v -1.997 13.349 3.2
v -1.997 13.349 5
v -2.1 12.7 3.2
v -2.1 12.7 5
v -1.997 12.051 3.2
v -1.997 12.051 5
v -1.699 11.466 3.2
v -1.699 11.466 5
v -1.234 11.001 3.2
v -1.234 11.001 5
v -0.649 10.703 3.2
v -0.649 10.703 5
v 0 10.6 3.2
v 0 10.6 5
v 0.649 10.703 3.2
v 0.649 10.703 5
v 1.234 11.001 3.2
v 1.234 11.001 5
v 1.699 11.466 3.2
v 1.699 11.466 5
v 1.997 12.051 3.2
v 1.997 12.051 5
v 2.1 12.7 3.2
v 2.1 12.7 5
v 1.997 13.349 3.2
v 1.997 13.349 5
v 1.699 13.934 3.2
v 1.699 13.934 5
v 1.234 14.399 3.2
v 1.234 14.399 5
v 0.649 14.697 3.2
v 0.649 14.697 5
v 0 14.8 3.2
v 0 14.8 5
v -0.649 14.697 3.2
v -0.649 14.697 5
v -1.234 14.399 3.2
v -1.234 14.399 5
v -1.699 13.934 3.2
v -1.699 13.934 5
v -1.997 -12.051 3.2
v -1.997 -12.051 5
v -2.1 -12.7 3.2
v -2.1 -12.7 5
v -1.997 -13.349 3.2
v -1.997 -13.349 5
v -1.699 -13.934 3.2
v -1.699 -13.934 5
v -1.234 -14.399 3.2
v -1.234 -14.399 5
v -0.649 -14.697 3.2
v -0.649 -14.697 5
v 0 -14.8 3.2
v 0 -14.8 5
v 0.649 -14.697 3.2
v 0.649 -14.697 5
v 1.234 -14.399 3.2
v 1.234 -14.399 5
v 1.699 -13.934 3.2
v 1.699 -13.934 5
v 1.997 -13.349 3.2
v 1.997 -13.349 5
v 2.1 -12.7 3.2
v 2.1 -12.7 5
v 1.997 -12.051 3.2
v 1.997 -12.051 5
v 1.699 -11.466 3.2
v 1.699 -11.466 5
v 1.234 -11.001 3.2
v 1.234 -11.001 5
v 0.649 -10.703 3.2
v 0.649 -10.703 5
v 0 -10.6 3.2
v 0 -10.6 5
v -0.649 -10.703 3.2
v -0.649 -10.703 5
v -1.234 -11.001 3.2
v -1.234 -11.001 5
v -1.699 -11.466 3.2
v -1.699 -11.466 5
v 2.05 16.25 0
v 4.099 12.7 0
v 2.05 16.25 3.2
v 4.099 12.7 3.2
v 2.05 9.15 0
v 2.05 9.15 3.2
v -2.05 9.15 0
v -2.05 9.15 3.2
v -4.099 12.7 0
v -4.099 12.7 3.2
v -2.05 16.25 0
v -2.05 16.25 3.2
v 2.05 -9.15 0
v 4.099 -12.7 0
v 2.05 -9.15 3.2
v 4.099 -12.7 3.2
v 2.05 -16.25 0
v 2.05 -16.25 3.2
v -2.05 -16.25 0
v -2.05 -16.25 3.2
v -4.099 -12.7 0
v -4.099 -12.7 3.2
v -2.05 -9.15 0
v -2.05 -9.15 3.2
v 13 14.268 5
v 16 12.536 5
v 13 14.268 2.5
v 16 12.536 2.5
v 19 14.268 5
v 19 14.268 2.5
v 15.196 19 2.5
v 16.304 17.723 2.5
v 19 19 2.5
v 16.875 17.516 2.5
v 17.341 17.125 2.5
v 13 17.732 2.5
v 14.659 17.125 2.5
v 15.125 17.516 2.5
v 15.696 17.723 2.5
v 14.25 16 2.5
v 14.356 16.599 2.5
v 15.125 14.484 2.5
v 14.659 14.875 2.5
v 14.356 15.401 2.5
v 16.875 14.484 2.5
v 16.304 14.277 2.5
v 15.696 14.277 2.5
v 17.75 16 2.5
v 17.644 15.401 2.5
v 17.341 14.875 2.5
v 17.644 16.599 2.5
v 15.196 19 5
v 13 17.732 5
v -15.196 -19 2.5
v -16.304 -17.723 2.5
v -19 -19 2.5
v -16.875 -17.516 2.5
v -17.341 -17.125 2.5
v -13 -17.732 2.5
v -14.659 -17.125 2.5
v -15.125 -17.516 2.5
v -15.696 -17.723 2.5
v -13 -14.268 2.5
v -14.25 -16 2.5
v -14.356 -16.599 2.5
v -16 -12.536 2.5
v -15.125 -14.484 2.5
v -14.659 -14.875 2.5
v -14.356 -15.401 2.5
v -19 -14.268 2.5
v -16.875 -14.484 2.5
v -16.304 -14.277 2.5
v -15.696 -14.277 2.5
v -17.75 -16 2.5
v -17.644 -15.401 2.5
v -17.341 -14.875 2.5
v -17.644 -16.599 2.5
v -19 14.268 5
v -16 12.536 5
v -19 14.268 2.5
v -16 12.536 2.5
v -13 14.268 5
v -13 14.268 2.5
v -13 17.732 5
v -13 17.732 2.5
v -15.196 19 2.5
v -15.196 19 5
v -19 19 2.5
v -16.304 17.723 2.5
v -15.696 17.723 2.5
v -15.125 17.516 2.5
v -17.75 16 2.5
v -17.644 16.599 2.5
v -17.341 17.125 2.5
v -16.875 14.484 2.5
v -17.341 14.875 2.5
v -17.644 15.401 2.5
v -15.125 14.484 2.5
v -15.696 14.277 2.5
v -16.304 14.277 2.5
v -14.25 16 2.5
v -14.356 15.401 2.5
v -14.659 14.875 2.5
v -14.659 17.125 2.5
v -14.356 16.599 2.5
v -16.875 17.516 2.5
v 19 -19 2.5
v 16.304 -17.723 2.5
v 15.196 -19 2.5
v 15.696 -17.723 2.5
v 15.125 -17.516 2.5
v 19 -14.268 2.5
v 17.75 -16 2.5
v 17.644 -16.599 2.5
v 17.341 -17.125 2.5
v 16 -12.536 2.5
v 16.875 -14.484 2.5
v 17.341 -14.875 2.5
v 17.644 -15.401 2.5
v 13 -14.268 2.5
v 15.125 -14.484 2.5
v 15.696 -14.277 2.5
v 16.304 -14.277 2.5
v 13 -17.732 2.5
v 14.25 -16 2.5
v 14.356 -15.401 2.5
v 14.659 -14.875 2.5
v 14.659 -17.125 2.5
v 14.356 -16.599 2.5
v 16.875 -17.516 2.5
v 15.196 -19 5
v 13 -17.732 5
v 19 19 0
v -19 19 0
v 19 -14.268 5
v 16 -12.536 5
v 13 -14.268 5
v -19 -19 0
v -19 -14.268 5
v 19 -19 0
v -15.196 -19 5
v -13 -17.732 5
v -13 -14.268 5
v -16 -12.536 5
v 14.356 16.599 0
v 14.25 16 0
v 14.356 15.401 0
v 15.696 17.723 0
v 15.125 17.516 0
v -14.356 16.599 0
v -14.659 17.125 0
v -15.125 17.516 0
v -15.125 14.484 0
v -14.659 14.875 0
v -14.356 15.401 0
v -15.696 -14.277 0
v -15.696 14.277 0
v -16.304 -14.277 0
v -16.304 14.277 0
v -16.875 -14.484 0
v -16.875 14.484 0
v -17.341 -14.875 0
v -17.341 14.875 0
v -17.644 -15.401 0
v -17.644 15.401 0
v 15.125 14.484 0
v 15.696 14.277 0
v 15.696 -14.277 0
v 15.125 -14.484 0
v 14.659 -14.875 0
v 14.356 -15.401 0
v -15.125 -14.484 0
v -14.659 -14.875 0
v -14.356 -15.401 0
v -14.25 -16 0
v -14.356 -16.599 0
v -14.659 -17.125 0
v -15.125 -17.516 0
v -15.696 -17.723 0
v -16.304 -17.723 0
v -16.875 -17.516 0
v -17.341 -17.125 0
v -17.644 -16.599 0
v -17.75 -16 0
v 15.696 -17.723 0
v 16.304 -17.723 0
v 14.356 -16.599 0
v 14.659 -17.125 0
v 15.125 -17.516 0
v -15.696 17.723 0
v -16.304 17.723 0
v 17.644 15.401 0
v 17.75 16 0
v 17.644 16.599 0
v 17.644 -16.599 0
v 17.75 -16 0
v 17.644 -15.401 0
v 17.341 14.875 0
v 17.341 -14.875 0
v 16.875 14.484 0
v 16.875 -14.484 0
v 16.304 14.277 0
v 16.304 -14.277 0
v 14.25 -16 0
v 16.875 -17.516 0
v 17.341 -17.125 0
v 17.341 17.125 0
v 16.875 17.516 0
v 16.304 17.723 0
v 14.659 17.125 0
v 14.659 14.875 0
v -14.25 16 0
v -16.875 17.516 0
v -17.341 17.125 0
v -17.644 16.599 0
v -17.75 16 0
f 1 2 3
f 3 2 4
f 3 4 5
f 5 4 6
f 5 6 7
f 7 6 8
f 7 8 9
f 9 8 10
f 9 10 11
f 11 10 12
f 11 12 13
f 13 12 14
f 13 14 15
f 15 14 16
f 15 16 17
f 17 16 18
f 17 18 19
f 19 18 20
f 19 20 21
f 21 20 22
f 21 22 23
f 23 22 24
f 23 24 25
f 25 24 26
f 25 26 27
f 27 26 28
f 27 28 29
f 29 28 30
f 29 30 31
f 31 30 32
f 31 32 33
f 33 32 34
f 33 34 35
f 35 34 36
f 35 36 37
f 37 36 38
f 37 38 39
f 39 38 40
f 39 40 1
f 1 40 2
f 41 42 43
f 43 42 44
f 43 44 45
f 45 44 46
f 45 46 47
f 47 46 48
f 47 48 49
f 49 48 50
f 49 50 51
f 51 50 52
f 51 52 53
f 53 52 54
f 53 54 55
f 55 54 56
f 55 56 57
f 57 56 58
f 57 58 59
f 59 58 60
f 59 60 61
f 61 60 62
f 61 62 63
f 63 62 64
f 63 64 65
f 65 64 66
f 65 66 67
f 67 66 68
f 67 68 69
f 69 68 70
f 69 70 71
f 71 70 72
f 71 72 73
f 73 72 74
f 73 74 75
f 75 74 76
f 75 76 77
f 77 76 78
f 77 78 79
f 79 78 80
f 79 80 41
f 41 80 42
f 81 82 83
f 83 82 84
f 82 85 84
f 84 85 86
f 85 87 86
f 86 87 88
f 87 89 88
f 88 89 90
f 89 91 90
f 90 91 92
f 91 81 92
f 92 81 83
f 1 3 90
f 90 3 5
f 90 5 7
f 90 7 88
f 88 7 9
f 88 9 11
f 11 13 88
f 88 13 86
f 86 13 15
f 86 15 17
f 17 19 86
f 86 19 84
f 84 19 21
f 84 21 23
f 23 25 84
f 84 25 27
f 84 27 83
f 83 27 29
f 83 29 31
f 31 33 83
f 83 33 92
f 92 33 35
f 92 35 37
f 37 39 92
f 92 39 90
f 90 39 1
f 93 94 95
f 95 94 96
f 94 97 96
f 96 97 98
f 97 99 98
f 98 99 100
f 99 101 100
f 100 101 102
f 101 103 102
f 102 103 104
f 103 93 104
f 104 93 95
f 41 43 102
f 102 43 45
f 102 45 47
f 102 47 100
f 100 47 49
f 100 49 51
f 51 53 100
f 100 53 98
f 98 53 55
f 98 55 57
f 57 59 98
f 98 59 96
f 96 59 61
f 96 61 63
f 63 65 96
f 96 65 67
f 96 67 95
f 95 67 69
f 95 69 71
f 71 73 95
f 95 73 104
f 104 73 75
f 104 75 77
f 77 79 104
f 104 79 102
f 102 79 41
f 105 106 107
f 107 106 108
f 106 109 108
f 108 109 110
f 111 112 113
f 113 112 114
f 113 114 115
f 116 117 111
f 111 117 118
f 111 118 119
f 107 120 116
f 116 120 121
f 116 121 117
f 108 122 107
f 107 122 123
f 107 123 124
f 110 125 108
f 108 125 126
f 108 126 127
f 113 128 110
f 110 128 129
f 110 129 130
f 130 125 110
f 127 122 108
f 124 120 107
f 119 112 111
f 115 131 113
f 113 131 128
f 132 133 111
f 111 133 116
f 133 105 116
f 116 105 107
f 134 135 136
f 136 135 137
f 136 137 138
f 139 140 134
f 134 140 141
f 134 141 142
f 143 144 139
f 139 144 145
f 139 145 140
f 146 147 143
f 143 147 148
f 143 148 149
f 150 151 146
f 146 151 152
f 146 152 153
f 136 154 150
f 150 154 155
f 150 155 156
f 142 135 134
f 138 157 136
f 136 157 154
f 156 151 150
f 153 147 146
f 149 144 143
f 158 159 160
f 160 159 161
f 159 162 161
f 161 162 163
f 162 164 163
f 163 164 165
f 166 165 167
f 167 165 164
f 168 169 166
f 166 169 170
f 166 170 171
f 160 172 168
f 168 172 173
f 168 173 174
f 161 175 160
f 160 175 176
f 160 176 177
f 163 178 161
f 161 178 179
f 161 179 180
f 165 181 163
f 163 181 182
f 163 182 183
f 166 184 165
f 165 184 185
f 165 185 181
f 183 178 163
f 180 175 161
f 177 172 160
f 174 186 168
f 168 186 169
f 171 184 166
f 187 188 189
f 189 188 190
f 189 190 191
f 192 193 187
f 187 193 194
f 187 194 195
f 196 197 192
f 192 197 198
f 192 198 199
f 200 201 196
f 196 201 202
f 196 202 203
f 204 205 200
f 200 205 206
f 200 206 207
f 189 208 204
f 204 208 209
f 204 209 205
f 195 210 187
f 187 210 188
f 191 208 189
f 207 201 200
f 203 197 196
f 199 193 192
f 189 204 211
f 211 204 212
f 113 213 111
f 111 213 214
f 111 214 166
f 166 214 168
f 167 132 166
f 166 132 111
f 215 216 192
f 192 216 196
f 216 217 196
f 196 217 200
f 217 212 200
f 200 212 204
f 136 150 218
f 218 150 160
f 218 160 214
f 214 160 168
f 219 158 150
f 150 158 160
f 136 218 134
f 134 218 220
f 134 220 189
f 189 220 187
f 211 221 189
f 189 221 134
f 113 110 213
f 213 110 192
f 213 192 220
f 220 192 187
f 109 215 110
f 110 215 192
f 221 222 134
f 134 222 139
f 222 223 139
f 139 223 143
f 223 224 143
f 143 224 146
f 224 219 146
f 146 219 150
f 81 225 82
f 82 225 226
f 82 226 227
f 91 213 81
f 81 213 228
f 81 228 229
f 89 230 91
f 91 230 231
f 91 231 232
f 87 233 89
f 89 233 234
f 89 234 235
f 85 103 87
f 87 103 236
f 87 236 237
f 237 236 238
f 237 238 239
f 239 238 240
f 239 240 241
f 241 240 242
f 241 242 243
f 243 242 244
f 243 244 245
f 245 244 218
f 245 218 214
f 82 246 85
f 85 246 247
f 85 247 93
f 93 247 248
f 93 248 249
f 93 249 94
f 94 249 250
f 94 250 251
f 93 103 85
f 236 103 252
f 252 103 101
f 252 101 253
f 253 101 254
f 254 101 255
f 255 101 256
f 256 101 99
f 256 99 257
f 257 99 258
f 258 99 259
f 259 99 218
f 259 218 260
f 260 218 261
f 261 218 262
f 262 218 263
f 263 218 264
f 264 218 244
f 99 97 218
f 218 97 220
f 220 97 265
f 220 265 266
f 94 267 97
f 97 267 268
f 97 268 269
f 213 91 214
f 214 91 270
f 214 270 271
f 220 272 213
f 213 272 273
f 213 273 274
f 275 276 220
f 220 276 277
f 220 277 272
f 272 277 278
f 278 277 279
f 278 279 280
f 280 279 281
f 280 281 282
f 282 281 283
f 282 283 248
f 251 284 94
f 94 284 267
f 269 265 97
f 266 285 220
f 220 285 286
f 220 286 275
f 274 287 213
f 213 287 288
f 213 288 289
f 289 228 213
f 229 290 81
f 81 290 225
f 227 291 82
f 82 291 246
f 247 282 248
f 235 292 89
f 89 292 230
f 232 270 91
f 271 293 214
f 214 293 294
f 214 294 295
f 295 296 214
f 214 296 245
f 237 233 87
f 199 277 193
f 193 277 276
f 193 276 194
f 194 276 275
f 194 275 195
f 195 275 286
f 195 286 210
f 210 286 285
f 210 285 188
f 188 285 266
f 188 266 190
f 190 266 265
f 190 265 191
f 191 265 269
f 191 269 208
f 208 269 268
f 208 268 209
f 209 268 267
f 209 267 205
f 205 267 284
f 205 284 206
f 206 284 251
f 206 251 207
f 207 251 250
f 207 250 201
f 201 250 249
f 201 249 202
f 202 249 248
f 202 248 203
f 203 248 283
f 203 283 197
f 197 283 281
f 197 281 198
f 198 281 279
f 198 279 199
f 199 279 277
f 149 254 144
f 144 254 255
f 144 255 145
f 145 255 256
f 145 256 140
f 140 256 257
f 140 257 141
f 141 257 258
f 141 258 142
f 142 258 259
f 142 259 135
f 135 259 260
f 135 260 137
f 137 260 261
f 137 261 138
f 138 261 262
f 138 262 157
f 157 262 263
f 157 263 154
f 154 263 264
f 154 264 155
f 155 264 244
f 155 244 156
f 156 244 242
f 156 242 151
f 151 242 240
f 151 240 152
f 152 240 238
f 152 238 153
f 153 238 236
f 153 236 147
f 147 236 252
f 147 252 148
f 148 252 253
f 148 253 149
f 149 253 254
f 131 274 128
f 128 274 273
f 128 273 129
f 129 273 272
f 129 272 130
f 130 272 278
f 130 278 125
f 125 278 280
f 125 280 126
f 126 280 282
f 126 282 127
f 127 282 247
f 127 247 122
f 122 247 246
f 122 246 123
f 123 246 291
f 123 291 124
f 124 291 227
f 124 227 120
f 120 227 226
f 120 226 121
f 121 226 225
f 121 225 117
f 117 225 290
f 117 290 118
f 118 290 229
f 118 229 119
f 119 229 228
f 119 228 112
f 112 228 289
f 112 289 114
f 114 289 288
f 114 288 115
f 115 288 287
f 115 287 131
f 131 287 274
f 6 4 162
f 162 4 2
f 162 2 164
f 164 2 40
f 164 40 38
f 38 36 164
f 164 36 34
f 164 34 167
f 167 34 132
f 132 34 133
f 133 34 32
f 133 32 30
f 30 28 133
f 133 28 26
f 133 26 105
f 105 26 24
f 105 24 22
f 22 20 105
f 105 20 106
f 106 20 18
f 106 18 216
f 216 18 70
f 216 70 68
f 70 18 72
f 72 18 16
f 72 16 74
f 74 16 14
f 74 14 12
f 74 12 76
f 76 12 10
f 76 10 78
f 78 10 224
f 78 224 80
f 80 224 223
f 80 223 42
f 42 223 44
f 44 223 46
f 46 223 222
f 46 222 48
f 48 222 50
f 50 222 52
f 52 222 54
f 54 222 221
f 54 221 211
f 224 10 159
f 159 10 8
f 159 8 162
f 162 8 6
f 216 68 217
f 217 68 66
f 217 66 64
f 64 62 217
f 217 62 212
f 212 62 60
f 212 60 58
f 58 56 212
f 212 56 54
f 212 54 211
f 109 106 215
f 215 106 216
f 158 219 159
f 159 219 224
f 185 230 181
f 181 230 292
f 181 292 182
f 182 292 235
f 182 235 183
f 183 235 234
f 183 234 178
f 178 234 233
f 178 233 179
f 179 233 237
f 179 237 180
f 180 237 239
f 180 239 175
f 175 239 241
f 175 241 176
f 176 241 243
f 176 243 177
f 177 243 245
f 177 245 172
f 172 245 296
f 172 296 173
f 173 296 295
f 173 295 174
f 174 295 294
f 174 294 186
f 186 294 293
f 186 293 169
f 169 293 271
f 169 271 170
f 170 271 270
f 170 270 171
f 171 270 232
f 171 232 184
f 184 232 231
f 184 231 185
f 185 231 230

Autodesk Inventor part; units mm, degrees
ref_plane "YZ Plane" through (0, 0, 0) normal (1, 0, 0) x (0, 1, 0)
ref_plane "XZ Plane" through (0, 0, 0) normal (0, 1, 0) x (-1, 0, 0)
ref_plane "XY Plane" through (0, 0, 0) normal (0, 0, 1) x (1, 0, 0)
sketch "Sketch5" plane through (0, 0, 0) normal (0, 0, 1) x (1, 0, 0)
  circle A0 centre (-16, 16) radius 1.75
  line L0 (-3.5516, 0) -> (2.966, 0)
  line L1 (0, 4.5757) -> (0, -5.4514)
  circle A1 centre (16, 16) radius 1.75
  circle A2 centre (-16, -16) radius 1.75
  circle A3 centre (16, -16) radius 1.75
  line L2 (19, -19) -> (-19, -19)
  line L3 (-19, -19) -> (-19, 19)
  line L4 (-19, 19) -> (19, 19)
  line L5 (19, 19) -> (19, -19)
  line L6 (19, -19) -> (-19, 19) construction
  line L7 (-19, -19) -> (19, 19) construction
  line L8 (4.0992, -12.7) -> (2.0496, -16.25)
  line L9 (2.0496, -16.25) -> (-2.0496, -16.25)
  line L10 (-2.0496, -16.25) -> (-4.0992, -12.7)
  line L11 (-4.0992, -12.7) -> (-2.0496, -9.15)
  line L12 (-2.0496, -9.15) -> (2.0496, -9.15)
  line L13 (2.0496, -9.15) -> (4.0992, -12.7)
  line L14 (4.0992, 12.7) -> (2.0496, 9.15)
  line L15 (2.0496, 9.15) -> (-2.0496, 9.15)
  line L16 (-2.0496, 9.15) -> (-4.0992, 12.7)
  line L17 (-4.0992, 12.7) -> (-2.0496, 16.25)
  line L18 (-2.0496, 16.25) -> (2.0496, 16.25)
  line L19 (2.0496, 16.25) -> (4.0992, 12.7)
  point P0 (0, 0)
  point P1 (0, 12.7)
  point P2 (0, -12.7)
  point P3 (0, -12.7)
  point P4 (0, 12.7)
  point P5 (0, -16.25)
  dimension "d47" = 3.5
  dimension "d50" = 32
  dimension "d53" = 32
  dimension "d56" = 16
  dimension "d57" = 16
  dimension "d58" = 38
  dimension "d59" = 38
  dimension "d73" = 7.1
  dimension "d74" = 7.1
extrude "Extrusion3" add sketch "Sketch5" along normal blind 5 contours L2 L3 L4 L5 | L8 L9 L10 L11 L12 L13 | L14 L15 L16 L17 L18 L19
sketch "Sketch6" plane through (0, 0, 5) normal (0, 0, 1) x (1, 0, 0)
  circle A0 centre (-16, 16) radius 1.75 projected
  line L0 (-16, 19.4641) -> (-13, 17.7321)
  line L1 (-13, 17.7321) -> (-13, 14.2679)
  line L2 (-13, 14.2679) -> (-16, 12.5359)
  line L3 (-16, 12.5359) -> (-19, 14.2679)
  line L4 (-19, 14.2679) -> (-19, 17.7321)
  line L5 (-19, 17.7321) -> (-16, 19.4641)
  line L6 (0, 4.5757) -> (0, -5.4514) projected
  line L7 (-3.5516, 0) -> (2.966, 0) projected
  line L8 (16, 19.4641) -> (19, 17.7321)
  line L9 (19, 17.7321) -> (19, 14.2679)
  line L10 (19, 14.2679) -> (16, 12.5359)
  line L11 (16, 12.5359) -> (13, 14.2679)
  line L12 (13, 14.2679) -> (13, 17.7321)
  line L13 (13, 17.7321) -> (16, 19.4641)
  line L14 (-16, -12.5359) -> (-13, -14.2679)
  line L15 (-13, -14.2679) -> (-13, -17.7321)
  line L16 (-13, -17.7321) -> (-16, -19.4641)
  line L17 (-16, -19.4641) -> (-19, -17.7321)
  line L18 (-19, -17.7321) -> (-19, -14.2679)
  line L19 (-19, -14.2679) -> (-16, -12.5359)
  line L20 (16, -12.5359) -> (19, -14.2679)
  line L21 (19, -14.2679) -> (19, -17.7321)
  line L22 (19, -17.7321) -> (16, -19.4641)
  line L23 (16, -19.4641) -> (13, -17.7321)
  line L24 (13, -17.7321) -> (13, -14.2679)
  line L25 (13, -14.2679) -> (16, -12.5359)
  point P0 (0, 0)
  point P1 (-13, 16)
  point P2 (16, 16)
  point P3 (16, 16)
  point P4 (19, 16)
  point P5 (-16, -16)
  point P6 (-16, -16)
  point P7 (-13, -16)
  point P8 (16, -16)
  point P9 (16, -16)
  point P10 (19, -16)
  dimension "d62" = 6
  dimension "d65" = 32
  dimension "d68" = 32
extrude "Extrusion4" cut sketch "Sketch6" against normal blind 2.5
extrude "Extrusion5" cut sketch "Sketch5" along normal blind 3.2 contours L8 L9 L10 L11 L12 L13 | L14 L15 L16 L17 L18 L19
hole "Hole4" at (0, 12.7, 0) at (0, -12.7, 0) direction (0, 0, 1) diameter 4.2 end through all
sketch "Sketch7" plane through (0, 0, 5) normal (0, 0, 1) x (1, 0, 0)
  line L0 (-16.8038, -19) -> (-19, -17.7321) projected
  line L1 (-19, -19) -> (-19, 19) projected
  line L2 (19, -19) -> (-19, -19) projected
  line L3 (19, -19) -> (-19, 19) construction
  line L4 (-19, 17.7321) -> (-16.8038, 19) projected
  line L5 (-19, 19) -> (19, 19) projected
  line L6 (16.8038, 19) -> (19, 17.7321) projected
  line L7 (19, 19) -> (19, -19) projected
  line L8 (19, -17.7321) -> (16.8038, -19) projected
  point P0 (0, 0)
extrude "Extrusion6" cut sketch "Sketch7" against normal up to surface (2.5 mm away) contours L2 L1 L0 | L8 L7 L2 | L1 L5 L4 | L6 L5 L7
properties part number "RD-PDT-S-to-M4-bolts"
